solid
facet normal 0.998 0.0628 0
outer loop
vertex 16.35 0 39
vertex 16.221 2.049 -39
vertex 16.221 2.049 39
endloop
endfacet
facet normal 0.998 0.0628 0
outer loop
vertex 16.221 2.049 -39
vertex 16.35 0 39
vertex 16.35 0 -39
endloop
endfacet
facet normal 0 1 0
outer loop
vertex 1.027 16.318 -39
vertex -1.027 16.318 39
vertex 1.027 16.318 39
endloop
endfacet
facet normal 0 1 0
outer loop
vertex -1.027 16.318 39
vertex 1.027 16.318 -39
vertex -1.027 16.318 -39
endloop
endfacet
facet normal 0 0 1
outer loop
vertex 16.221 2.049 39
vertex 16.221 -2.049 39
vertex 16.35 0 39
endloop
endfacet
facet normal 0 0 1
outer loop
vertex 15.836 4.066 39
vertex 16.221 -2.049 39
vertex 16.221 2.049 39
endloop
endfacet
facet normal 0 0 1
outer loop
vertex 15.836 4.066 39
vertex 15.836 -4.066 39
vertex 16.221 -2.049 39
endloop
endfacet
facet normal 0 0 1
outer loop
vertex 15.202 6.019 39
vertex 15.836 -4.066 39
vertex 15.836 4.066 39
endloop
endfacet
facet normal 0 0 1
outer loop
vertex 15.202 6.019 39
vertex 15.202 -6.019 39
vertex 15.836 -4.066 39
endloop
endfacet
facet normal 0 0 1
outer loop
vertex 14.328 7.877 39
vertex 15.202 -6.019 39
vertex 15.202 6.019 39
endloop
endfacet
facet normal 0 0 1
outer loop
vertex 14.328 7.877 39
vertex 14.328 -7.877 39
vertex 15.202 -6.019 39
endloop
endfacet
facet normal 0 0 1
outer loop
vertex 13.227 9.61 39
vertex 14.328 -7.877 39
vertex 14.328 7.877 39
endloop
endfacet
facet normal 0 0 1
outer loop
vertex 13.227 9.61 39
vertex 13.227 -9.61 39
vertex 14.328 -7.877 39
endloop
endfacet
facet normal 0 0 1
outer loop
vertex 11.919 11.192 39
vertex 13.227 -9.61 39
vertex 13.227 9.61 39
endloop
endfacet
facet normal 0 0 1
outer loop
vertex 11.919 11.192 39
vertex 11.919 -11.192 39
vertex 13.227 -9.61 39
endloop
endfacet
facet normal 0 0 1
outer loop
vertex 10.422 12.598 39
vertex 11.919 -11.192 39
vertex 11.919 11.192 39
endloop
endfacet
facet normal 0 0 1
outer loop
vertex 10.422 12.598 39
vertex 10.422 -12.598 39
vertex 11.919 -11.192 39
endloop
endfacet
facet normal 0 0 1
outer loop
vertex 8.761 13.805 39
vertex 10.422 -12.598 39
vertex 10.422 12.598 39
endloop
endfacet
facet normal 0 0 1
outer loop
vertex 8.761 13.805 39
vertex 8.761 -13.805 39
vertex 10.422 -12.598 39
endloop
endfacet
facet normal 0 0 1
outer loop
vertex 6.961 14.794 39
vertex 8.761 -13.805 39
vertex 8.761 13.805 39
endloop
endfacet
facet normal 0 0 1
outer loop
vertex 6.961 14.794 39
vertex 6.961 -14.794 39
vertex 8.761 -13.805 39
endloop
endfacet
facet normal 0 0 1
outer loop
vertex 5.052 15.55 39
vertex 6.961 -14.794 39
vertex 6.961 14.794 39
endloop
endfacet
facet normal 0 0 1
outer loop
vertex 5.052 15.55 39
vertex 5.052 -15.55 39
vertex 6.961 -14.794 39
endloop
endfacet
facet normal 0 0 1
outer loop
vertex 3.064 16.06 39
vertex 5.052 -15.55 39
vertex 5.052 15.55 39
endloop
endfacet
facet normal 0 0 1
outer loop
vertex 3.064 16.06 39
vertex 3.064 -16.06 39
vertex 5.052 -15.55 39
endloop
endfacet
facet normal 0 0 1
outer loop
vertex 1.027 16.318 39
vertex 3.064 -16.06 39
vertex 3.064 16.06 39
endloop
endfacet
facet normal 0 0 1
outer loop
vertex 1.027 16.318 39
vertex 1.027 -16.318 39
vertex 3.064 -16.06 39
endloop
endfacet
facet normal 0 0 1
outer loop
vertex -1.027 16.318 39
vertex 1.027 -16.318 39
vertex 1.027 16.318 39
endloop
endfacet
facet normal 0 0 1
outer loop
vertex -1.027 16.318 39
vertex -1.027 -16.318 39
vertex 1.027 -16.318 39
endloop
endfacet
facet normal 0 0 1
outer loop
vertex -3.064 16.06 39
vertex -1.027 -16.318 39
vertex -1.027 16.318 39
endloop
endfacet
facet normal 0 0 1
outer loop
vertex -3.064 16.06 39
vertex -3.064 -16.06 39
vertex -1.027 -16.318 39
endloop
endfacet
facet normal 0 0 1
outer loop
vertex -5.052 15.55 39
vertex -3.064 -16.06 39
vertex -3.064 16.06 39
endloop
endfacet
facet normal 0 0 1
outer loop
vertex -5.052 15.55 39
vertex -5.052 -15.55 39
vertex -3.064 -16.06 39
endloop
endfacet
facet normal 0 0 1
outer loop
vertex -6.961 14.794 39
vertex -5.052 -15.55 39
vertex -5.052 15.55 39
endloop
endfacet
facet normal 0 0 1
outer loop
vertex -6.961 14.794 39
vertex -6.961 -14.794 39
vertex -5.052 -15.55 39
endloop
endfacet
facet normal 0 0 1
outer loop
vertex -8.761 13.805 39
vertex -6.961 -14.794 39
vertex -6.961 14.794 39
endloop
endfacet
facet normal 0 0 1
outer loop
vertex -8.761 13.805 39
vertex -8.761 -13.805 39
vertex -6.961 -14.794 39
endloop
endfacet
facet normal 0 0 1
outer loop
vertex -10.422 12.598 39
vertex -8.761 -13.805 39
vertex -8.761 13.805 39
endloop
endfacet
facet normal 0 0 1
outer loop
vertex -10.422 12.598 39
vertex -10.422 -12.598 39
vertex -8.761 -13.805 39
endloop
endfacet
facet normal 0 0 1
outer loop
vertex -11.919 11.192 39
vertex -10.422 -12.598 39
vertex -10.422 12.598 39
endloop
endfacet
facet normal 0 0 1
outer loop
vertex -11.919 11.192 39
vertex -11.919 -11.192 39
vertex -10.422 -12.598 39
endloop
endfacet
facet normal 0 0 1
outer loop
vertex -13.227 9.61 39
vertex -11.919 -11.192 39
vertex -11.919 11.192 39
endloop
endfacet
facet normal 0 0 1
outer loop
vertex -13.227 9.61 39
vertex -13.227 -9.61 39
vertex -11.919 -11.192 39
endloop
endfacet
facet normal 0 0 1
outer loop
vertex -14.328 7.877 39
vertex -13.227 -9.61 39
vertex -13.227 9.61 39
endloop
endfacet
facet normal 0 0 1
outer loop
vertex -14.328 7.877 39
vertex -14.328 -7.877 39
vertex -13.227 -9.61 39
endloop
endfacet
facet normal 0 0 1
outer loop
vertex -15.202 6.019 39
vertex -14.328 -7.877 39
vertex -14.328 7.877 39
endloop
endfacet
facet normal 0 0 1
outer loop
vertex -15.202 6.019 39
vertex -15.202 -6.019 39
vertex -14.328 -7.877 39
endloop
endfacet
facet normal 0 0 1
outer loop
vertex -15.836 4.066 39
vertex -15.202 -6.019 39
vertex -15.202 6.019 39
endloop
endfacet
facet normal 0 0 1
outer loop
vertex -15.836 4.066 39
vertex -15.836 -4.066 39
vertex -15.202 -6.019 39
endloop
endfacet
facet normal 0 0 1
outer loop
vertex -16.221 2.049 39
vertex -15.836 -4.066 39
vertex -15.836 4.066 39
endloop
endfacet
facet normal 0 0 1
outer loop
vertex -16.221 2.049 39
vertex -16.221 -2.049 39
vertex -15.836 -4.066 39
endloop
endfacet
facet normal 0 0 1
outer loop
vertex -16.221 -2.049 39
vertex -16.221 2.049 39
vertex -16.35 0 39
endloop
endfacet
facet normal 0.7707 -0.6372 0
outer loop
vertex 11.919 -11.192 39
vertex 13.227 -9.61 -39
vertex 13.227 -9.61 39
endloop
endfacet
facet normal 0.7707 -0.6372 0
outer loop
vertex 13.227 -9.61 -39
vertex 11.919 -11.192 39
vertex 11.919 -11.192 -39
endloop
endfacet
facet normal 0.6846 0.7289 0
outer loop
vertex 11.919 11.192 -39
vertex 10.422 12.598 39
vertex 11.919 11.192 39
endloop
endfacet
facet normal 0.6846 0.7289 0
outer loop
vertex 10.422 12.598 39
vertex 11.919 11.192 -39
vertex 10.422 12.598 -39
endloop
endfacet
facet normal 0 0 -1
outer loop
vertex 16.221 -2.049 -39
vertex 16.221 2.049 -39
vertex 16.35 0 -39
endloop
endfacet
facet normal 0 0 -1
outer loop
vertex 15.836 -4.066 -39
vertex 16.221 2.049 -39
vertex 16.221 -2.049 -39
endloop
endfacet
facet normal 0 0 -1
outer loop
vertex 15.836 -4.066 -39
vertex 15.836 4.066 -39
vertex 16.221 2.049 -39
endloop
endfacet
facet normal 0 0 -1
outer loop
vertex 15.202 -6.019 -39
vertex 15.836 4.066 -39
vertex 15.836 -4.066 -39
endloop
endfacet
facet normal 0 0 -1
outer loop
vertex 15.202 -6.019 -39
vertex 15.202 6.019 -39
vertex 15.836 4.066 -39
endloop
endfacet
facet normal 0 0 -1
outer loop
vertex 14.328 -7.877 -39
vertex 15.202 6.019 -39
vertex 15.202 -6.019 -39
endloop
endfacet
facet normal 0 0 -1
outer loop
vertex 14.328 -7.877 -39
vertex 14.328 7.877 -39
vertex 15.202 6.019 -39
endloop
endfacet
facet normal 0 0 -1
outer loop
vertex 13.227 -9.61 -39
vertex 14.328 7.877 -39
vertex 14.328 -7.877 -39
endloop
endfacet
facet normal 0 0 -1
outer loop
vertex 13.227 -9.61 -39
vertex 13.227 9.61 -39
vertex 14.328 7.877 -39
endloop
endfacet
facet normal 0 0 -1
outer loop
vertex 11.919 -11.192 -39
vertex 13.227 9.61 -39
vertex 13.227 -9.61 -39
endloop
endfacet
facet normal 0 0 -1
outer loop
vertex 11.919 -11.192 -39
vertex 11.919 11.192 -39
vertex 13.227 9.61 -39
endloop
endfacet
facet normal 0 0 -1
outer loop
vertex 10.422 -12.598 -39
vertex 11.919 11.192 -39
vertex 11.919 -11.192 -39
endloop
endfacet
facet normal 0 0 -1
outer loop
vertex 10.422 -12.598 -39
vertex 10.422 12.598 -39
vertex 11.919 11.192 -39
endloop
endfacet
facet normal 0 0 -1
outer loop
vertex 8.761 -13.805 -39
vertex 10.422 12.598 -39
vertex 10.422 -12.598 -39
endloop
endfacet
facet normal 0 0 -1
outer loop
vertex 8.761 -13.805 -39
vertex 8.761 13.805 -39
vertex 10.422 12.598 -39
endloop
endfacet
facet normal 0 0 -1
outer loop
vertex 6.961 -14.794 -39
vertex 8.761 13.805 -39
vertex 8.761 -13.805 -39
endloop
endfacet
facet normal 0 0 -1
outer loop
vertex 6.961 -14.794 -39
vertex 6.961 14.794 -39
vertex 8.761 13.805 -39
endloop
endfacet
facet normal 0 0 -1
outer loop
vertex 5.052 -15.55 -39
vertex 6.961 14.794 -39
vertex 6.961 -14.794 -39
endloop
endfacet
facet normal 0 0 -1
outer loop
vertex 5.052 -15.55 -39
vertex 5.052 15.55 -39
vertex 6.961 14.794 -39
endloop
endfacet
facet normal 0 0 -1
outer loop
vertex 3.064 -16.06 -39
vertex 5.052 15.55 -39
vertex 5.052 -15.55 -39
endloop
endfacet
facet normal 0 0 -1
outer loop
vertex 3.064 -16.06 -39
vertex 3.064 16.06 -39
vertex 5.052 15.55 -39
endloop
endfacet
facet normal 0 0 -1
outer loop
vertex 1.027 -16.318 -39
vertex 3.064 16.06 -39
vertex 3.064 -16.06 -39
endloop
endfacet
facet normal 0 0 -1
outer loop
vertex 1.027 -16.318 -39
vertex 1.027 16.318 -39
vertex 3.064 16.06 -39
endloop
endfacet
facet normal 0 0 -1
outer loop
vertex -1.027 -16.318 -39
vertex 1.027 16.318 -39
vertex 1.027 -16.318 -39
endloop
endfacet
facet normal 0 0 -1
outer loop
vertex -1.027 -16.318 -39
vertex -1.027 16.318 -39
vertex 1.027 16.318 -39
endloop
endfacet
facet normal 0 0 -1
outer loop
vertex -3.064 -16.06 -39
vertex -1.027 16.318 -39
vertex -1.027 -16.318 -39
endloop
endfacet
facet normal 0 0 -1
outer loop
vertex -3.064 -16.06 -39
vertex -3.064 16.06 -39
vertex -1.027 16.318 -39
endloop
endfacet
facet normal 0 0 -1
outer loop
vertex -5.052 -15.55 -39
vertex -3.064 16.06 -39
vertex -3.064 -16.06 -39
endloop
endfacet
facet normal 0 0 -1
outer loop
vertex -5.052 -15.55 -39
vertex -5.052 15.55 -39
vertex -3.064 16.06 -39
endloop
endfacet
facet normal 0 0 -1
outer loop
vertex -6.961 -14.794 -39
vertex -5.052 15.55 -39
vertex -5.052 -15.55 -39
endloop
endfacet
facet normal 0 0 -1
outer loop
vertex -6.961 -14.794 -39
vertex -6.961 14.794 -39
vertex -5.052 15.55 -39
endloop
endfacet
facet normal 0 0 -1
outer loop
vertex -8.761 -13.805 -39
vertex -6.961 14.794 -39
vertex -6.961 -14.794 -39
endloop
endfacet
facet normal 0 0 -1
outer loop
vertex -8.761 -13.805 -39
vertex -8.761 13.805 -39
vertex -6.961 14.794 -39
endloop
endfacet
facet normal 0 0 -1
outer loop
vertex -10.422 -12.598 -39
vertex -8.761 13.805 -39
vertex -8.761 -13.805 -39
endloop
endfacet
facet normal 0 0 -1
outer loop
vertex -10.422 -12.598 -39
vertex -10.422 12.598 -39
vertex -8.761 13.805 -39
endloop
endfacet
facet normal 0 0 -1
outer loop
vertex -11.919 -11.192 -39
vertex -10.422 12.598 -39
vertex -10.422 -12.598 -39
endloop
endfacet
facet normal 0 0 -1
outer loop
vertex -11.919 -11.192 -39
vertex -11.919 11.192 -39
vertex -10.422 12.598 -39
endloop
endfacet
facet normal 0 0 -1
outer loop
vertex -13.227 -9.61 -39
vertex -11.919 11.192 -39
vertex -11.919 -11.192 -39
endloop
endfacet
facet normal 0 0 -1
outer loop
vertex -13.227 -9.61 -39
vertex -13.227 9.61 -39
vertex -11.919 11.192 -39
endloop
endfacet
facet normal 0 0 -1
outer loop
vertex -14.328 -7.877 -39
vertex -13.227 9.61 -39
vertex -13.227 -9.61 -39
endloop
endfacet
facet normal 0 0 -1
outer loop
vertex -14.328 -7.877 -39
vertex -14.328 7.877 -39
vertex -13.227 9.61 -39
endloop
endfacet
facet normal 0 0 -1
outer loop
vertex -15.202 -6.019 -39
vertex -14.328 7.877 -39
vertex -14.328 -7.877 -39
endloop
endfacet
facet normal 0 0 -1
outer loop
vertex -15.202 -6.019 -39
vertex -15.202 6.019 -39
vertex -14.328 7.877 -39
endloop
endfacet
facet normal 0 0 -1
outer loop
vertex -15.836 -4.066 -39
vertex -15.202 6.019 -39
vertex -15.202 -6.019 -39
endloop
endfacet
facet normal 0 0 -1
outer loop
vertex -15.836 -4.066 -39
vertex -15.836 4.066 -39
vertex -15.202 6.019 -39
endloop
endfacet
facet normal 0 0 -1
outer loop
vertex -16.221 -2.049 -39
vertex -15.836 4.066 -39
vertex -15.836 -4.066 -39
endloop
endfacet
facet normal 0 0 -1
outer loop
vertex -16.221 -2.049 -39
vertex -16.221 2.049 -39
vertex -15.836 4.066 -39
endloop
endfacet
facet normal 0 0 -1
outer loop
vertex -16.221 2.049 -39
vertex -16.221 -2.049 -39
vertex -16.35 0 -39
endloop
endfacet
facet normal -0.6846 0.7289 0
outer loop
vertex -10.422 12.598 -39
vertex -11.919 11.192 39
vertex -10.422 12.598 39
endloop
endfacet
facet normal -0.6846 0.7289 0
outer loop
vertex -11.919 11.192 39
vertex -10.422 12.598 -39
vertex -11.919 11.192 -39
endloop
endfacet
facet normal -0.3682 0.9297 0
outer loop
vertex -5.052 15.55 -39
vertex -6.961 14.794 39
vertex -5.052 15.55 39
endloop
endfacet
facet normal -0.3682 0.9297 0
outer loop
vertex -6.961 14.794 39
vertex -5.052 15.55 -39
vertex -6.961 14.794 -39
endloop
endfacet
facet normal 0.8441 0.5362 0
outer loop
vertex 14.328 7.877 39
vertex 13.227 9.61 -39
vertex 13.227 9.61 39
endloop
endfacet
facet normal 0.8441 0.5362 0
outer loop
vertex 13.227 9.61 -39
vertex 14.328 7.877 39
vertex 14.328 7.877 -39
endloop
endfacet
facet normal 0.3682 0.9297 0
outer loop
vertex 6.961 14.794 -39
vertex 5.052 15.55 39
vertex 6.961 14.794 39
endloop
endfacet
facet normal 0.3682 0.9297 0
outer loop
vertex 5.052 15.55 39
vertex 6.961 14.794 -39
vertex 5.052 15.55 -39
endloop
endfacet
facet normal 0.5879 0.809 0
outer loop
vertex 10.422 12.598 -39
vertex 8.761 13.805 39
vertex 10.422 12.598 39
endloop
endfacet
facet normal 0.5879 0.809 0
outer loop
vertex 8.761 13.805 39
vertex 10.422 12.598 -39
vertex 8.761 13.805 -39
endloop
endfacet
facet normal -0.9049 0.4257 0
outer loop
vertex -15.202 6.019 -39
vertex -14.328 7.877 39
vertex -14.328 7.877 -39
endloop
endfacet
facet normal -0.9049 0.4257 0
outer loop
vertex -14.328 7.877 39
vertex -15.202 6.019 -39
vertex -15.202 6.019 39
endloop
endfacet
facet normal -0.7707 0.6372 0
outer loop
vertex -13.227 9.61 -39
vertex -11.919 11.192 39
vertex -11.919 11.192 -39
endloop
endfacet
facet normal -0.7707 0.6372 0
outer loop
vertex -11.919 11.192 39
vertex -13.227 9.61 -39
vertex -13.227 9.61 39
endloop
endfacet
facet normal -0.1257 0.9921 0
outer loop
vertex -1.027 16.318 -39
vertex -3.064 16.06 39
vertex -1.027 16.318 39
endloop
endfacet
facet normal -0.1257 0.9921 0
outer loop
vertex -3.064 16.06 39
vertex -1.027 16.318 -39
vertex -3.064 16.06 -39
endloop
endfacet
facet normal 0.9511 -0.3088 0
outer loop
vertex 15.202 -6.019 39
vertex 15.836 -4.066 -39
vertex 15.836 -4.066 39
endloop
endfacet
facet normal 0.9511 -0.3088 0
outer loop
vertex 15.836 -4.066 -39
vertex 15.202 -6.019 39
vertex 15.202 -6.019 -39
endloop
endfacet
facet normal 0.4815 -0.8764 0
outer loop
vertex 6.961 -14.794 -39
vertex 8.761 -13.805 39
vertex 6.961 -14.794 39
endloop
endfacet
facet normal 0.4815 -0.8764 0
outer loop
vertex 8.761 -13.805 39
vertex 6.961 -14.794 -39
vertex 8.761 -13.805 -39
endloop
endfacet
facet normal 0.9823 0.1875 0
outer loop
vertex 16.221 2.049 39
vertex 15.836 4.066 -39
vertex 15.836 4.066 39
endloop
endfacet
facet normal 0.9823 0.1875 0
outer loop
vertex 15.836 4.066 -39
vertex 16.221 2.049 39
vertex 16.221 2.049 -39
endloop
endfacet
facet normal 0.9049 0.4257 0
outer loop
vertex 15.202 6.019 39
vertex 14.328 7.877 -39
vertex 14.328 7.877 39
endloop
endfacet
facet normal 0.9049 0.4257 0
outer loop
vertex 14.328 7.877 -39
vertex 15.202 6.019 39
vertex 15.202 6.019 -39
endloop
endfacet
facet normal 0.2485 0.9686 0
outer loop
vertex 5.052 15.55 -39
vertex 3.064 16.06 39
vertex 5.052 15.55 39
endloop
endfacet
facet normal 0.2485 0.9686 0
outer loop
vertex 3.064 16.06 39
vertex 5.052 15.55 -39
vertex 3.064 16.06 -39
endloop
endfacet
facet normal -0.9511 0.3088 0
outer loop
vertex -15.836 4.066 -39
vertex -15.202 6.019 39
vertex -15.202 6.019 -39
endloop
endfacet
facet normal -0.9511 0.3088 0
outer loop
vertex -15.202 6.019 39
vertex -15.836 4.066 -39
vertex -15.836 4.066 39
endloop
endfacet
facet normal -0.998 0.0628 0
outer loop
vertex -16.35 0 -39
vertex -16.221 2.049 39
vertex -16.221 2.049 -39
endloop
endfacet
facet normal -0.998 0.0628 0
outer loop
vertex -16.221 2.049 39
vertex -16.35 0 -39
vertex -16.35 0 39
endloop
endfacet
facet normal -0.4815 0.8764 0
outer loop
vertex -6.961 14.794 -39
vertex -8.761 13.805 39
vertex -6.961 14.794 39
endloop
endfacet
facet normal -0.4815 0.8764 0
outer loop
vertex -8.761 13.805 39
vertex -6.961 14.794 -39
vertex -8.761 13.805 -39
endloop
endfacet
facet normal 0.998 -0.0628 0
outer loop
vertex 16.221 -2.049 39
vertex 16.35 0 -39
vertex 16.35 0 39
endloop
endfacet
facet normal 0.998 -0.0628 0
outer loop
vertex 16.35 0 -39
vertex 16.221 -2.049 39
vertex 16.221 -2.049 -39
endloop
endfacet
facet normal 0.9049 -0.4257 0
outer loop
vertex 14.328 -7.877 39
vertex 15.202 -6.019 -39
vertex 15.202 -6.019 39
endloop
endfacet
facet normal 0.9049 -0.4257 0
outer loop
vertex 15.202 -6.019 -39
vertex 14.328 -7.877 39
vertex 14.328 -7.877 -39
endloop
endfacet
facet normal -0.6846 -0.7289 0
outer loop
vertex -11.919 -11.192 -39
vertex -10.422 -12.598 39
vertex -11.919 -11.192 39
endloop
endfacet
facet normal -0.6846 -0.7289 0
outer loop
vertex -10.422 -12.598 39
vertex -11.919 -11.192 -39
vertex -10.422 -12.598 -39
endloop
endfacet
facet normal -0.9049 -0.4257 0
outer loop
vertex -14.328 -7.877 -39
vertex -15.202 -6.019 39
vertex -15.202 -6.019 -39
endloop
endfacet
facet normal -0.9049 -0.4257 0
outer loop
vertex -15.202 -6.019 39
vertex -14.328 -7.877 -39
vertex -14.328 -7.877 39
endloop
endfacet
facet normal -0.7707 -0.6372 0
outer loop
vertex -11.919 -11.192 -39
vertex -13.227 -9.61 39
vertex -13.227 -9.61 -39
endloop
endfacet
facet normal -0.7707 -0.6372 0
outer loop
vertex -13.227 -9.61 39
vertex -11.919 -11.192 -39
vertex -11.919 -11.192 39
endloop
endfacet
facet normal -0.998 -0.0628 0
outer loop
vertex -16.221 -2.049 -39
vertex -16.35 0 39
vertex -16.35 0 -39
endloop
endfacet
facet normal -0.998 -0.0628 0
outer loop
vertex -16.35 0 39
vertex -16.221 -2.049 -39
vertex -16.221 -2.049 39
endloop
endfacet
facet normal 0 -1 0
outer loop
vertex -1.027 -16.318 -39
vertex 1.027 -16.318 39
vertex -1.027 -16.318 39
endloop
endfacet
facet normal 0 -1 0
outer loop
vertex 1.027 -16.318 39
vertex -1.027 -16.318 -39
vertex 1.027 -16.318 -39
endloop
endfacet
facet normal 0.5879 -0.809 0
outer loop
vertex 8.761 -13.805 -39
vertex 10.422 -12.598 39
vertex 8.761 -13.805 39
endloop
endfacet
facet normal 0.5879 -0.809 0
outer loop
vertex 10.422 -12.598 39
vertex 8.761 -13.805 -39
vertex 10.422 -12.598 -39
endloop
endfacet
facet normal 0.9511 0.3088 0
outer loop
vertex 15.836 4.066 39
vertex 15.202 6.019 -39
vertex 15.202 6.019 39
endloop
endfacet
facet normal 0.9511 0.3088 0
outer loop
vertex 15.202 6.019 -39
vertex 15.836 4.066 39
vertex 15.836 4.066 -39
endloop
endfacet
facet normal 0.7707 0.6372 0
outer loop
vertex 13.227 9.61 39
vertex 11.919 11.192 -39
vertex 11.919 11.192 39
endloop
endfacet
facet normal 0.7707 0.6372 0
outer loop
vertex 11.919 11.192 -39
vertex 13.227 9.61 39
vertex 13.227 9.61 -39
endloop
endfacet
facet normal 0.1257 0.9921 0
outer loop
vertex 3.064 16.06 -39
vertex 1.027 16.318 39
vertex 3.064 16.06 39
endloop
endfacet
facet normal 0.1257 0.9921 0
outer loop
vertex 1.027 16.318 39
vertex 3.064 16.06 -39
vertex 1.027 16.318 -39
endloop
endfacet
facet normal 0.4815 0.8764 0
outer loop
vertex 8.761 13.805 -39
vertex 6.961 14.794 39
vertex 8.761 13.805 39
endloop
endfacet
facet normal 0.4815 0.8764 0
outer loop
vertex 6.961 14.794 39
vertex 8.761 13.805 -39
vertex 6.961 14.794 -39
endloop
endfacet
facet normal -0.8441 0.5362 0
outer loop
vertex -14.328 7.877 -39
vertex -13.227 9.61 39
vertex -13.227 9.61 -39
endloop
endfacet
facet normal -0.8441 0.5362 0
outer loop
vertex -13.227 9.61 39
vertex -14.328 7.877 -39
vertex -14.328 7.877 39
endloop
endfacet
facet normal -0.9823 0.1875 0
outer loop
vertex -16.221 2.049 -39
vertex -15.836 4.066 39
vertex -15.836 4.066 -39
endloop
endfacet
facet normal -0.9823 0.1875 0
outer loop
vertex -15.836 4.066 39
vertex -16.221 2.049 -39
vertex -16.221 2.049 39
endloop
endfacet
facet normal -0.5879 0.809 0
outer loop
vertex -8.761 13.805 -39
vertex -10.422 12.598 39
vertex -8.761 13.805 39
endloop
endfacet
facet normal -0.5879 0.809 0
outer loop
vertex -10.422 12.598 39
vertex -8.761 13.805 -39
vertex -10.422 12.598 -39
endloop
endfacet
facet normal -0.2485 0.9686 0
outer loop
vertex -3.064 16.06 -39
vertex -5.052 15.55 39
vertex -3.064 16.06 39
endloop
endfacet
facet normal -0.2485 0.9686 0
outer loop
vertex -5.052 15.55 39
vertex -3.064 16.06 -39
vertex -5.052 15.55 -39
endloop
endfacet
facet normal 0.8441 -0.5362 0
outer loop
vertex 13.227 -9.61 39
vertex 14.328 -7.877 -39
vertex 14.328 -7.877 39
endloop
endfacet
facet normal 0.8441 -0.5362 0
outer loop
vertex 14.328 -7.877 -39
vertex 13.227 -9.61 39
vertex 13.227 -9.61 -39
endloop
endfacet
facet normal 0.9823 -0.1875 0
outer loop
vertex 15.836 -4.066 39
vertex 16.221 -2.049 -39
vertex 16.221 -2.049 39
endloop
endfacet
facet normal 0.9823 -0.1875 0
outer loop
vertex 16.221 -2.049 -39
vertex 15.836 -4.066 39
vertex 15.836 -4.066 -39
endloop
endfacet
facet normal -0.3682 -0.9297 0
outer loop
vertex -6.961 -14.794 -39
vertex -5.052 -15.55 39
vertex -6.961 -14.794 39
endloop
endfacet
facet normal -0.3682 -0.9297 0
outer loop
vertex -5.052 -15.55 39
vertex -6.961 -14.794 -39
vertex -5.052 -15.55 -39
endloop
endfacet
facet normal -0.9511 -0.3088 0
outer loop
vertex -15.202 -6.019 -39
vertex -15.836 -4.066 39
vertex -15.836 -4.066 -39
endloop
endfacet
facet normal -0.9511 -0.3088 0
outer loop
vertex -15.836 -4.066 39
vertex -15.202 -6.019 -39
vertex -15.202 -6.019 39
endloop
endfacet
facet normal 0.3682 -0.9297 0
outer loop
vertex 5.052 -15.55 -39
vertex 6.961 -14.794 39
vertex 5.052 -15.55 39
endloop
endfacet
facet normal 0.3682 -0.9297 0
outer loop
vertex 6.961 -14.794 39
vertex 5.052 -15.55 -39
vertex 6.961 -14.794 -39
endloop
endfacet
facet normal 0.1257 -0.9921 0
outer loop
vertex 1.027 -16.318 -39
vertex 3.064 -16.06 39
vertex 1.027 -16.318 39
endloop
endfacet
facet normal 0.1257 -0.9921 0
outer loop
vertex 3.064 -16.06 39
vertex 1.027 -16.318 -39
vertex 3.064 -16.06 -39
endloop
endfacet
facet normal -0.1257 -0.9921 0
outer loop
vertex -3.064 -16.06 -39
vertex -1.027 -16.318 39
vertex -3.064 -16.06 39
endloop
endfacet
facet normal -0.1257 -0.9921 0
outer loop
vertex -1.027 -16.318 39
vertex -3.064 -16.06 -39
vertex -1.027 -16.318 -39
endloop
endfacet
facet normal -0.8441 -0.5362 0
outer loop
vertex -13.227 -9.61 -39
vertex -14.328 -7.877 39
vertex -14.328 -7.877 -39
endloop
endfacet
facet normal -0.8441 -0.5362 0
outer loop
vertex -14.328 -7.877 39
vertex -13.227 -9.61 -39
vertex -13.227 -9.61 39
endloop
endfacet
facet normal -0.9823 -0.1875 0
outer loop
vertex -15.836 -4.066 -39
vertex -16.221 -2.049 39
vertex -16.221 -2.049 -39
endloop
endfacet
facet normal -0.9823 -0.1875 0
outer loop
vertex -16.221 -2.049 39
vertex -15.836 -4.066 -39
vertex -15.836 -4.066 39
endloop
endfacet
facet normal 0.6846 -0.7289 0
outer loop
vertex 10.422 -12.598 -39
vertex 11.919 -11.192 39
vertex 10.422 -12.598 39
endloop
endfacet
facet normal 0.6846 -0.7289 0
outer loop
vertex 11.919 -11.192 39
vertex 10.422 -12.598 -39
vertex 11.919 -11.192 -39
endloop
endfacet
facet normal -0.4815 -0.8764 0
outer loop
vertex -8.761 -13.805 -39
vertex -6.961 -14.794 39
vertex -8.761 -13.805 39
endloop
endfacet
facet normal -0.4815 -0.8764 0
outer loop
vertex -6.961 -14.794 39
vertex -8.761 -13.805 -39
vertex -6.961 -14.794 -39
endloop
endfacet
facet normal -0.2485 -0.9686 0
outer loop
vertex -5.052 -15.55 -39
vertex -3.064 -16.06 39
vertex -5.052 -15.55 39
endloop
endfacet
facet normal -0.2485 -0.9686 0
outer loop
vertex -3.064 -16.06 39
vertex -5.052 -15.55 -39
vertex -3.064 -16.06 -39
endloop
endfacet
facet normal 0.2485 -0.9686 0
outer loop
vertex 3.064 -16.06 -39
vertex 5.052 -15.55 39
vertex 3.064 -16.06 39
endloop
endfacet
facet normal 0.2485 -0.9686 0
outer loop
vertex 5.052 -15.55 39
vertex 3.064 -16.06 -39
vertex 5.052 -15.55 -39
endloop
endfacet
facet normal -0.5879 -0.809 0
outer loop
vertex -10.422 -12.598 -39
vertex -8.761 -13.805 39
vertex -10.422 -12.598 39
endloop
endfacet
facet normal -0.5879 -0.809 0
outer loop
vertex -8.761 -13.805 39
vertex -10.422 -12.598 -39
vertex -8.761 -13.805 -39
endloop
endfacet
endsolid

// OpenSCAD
$fn = 50;


difference() {
	union() {
		translate(v = [0, 0, -39.0000000000]) {
			cylinder(h = 78, r = 16.3500000000);
		}
	}
	union() {
		translate(v = [0, 0, -100.0000000000]) {
			cylinder(h = 200, r = 0);
		}
	}
}
